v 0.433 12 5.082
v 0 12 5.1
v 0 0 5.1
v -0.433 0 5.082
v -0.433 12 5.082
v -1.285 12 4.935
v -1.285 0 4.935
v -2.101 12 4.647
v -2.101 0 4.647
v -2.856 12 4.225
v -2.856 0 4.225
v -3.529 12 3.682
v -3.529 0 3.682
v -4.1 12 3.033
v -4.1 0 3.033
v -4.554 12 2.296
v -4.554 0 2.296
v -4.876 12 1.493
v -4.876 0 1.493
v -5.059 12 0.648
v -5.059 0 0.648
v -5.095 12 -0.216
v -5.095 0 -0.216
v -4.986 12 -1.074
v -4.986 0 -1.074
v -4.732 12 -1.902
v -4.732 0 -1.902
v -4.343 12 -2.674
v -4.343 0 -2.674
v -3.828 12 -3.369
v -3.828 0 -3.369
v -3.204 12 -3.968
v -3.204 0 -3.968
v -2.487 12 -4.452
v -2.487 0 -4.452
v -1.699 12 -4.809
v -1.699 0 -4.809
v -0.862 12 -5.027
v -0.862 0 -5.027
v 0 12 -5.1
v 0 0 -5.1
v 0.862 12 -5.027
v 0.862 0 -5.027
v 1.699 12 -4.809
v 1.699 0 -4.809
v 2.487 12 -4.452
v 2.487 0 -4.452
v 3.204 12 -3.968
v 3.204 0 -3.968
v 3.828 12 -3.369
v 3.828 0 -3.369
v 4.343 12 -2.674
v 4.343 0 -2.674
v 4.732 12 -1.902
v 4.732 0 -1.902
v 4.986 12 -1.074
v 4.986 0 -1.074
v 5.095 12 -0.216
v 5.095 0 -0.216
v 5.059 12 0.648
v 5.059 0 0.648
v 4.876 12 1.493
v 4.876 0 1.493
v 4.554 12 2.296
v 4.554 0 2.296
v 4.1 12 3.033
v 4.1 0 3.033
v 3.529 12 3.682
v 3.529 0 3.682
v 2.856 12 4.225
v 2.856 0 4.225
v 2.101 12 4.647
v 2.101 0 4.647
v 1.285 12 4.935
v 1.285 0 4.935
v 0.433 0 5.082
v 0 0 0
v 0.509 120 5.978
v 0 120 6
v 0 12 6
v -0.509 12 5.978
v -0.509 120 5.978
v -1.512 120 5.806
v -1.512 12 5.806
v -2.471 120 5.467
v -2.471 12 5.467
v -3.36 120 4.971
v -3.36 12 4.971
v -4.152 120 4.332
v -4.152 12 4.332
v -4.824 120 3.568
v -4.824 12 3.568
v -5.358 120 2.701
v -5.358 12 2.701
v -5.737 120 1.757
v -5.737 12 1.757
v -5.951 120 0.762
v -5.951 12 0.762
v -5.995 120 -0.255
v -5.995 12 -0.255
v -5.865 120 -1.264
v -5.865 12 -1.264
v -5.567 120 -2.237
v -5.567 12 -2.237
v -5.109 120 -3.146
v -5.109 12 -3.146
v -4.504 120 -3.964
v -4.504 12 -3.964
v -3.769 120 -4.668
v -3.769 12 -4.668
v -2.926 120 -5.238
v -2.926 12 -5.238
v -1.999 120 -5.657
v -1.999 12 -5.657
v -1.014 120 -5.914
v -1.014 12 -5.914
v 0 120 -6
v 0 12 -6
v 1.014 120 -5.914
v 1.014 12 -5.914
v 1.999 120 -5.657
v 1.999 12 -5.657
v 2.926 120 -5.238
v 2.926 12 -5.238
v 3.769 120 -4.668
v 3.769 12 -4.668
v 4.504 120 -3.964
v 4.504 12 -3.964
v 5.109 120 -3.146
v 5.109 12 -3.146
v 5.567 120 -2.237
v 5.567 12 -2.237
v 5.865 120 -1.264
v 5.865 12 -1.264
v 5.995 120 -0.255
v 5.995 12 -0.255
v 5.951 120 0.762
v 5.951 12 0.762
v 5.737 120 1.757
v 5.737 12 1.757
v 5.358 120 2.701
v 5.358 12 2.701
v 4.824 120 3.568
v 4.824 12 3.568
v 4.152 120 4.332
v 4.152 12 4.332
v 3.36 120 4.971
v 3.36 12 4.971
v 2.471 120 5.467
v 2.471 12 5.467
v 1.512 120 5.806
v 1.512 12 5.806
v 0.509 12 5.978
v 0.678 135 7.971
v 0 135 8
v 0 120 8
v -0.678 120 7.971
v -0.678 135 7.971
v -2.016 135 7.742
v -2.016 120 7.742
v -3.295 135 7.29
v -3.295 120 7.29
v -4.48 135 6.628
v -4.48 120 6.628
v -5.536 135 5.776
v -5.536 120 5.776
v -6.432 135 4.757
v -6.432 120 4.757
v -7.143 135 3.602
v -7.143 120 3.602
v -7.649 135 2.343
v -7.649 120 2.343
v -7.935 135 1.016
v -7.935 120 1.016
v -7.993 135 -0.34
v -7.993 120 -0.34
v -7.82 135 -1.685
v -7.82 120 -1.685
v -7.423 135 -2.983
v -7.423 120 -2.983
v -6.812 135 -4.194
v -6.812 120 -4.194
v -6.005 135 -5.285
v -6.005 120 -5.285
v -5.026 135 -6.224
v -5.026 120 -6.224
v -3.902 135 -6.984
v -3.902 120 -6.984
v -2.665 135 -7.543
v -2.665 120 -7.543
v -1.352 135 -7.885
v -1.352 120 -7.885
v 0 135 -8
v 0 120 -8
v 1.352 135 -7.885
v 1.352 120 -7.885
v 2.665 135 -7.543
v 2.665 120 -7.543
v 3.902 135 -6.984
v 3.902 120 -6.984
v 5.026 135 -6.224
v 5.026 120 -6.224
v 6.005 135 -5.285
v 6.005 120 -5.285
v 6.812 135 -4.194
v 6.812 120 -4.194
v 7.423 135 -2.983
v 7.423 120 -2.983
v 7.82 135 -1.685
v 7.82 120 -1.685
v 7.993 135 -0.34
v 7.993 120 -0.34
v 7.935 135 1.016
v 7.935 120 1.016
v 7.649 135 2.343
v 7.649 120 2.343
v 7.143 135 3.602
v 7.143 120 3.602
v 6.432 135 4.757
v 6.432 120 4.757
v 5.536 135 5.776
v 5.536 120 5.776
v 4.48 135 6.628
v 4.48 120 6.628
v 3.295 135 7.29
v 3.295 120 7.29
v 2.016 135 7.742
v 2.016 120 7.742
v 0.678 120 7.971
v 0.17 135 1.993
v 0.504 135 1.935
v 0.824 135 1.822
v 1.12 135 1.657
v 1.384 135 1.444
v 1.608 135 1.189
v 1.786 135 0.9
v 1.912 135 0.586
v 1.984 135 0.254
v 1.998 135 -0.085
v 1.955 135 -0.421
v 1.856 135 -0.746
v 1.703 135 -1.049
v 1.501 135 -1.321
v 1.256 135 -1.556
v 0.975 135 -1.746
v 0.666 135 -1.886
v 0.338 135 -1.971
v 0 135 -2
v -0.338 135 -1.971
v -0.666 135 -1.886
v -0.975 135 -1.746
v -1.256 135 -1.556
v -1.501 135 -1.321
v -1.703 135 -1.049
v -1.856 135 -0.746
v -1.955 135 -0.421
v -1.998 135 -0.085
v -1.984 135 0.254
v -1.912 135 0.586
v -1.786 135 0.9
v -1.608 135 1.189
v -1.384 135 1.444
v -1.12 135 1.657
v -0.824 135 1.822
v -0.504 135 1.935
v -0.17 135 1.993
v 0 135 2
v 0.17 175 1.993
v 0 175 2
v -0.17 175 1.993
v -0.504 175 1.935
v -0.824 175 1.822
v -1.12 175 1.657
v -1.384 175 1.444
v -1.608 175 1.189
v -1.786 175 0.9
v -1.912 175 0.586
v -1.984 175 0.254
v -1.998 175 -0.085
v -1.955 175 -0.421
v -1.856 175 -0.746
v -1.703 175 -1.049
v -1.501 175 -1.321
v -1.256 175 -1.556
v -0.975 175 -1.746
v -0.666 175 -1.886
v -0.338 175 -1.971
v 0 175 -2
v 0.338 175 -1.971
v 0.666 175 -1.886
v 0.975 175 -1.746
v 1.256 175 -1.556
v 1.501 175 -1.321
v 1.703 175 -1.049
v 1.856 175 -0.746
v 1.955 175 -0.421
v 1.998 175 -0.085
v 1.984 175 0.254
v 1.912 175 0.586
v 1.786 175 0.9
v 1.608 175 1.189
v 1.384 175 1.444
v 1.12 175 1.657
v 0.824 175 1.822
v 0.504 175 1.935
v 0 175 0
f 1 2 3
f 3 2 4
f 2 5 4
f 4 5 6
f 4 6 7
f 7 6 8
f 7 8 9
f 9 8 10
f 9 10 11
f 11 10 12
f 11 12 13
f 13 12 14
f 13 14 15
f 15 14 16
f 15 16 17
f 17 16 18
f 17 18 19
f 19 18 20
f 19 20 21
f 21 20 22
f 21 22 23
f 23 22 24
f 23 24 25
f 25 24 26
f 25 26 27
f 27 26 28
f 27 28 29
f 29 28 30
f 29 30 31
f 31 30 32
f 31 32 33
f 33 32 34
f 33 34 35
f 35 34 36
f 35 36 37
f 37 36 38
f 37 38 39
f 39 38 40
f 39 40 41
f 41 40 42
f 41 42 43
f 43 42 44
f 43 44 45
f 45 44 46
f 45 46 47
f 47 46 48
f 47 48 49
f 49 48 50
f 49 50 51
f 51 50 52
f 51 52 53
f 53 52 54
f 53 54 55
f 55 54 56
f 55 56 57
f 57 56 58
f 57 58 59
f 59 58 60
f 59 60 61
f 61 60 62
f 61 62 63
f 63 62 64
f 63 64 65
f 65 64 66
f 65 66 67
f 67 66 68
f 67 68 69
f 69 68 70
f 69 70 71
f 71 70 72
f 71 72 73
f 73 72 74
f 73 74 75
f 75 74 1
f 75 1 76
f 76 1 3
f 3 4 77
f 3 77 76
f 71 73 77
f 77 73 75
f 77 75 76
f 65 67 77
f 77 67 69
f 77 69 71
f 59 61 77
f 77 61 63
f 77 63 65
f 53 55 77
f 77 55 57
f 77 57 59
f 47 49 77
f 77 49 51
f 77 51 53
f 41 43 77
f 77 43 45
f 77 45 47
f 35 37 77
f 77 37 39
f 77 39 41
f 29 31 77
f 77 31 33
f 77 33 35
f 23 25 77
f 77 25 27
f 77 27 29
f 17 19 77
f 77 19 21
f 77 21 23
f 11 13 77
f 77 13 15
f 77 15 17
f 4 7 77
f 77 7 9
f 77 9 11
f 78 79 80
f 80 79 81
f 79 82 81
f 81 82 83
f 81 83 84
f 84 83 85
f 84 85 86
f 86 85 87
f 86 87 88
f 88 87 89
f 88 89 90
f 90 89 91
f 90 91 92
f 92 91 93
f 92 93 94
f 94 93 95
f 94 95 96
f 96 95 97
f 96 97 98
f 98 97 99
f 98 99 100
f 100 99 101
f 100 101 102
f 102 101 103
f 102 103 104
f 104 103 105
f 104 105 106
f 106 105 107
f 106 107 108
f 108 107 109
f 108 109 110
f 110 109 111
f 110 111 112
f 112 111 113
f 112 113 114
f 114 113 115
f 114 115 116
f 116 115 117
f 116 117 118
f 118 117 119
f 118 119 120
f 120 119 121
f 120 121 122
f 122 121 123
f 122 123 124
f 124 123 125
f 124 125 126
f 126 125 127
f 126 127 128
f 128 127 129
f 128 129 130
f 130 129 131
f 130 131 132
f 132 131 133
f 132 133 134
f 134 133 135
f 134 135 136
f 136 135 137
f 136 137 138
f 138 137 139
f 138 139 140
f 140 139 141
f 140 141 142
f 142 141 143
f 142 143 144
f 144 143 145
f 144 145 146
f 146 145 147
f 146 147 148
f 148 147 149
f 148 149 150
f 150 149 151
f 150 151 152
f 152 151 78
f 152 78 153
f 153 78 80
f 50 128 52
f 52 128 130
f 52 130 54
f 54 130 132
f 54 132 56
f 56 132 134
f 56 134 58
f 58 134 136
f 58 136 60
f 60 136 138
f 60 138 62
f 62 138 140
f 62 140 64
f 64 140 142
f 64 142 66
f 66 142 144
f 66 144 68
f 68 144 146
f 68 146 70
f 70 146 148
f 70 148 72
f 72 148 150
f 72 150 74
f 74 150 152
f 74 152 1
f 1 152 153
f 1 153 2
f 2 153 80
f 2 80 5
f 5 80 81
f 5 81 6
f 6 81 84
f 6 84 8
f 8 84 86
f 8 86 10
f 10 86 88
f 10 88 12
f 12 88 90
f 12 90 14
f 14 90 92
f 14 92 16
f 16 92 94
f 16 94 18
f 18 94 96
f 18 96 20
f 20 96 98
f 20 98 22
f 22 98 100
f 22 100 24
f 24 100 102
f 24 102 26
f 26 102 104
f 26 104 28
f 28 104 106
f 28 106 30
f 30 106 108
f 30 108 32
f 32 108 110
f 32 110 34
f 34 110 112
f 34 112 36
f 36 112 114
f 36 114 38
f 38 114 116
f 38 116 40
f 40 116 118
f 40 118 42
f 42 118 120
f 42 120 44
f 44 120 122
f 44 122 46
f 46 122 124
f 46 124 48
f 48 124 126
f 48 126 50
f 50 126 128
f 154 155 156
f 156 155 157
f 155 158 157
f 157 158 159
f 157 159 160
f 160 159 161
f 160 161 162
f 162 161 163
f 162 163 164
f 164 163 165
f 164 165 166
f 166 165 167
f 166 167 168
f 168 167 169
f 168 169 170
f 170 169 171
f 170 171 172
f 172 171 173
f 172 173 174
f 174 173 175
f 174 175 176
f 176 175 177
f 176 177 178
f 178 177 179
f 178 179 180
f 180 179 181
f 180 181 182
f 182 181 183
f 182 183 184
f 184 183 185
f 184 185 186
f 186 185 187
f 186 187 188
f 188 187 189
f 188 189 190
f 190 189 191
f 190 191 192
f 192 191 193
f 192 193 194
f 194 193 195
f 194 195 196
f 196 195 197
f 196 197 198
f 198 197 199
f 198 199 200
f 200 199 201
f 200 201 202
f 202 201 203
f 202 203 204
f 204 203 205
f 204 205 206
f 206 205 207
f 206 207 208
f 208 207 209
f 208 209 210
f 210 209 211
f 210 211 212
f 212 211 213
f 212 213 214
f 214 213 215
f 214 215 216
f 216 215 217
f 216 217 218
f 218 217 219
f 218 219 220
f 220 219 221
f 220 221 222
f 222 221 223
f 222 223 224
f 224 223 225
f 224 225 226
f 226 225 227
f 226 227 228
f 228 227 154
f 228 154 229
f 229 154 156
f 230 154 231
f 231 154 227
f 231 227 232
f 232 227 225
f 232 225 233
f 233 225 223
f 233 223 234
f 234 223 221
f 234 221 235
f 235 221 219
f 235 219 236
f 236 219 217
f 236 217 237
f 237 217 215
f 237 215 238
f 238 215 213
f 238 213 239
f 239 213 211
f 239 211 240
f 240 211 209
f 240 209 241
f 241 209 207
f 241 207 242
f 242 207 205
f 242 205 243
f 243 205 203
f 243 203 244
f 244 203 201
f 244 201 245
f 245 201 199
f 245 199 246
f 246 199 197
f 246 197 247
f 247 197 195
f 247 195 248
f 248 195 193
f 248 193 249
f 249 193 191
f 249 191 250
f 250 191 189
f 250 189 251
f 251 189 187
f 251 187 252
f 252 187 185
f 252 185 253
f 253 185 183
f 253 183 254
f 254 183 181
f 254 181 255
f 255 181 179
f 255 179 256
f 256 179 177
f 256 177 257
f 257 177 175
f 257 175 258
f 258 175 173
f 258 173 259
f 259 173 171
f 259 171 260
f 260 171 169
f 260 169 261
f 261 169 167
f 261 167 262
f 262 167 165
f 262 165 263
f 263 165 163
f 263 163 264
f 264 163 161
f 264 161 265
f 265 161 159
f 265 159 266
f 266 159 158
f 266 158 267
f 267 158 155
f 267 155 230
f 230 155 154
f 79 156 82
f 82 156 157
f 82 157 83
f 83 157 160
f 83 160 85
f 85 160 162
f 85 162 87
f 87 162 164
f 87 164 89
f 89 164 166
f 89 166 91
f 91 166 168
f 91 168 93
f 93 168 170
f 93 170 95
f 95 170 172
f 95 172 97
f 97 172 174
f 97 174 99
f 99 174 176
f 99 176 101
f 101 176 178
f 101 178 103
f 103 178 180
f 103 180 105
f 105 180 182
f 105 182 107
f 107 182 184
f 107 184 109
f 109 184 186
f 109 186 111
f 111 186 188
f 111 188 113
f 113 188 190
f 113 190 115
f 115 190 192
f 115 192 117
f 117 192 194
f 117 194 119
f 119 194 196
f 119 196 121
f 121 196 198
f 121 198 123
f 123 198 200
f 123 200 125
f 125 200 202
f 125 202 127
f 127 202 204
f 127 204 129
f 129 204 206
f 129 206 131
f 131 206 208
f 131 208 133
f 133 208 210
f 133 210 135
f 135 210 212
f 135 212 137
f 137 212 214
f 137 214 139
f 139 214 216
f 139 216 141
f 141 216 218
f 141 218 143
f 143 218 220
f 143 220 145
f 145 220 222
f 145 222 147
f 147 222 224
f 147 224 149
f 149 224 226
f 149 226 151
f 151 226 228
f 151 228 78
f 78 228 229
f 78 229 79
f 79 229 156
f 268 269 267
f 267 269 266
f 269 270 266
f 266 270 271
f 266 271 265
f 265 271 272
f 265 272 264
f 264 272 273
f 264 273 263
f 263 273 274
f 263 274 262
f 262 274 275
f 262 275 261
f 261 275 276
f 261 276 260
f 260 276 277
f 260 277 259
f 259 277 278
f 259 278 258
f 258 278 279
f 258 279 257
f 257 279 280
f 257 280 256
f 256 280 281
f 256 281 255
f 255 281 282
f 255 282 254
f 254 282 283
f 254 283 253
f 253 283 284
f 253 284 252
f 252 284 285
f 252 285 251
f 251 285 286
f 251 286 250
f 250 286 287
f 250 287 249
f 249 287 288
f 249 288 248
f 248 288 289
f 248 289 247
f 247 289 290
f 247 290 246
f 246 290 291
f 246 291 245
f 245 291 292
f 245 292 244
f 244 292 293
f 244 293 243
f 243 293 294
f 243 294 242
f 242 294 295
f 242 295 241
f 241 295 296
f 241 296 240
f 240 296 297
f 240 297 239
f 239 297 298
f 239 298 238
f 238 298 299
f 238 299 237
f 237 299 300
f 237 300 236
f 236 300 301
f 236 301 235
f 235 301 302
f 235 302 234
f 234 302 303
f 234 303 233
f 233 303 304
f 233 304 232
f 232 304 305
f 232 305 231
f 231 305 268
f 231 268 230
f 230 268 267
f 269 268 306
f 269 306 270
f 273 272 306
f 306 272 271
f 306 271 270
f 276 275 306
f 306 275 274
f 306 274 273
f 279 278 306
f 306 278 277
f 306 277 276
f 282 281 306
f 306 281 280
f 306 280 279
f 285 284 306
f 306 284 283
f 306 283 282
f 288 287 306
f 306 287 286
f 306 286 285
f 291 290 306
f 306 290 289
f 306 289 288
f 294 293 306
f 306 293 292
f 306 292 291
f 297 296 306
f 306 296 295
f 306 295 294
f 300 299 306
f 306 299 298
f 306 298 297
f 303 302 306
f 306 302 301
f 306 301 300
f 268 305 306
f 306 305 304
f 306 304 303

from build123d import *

# Parameters (mm, degrees)
SKETCH1_R       = 5.1
GLASS_TIP_DEPTH = 12
BODY_START      = 12
SKETCH2_R       = 6
BODY_DEPTH      = 108
CAP_START       = 120
SKETCH3_R       = 8
CAP_DEPTH       = 15
CABLE_START     = 135
SKETCH4_R       = 2
CABLE_DEPTH     = 40


with BuildPart() as part:
    # Sketch1 → Glass_Tip (new body)
    with BuildSketch(Plane(origin=(0, 0, 0), x_dir=(1, 0, 0), z_dir=(0, 1, 0))):
        with Locations(Location((0, 0, 0), (0, 0, 270))):
            Circle(SKETCH1_R)
    extrude(amount=GLASS_TIP_DEPTH)

    # Sketch2 → Body (add)
    with BuildSketch(Plane(origin=(0, 0, 0), x_dir=(1, 0, 0), z_dir=(0, 1, 0)).offset(BODY_START)):
        with Locations(Location((0, 0, 0), (0, 0, 270))):
            Circle(SKETCH2_R)
    extrude(amount=BODY_DEPTH)

    # Sketch3 → Cap (add)
    with BuildSketch(Plane(origin=(0, 0, 0), x_dir=(1, 0, 0), z_dir=(0, 1, 0)).offset(CAP_START)):
        with Locations(Location((0, 0, 0), (0, 0, 270))):
            Circle(SKETCH3_R)
    extrude(amount=CAP_DEPTH)

    # Sketch4 → Cable (add)
    with BuildSketch(Plane(origin=(0, 0, 0), x_dir=(1, 0, 0), z_dir=(0, 1, 0)).offset(CABLE_START)):
        with Locations(Location((0, 0, 0), (0, 0, 270))):
            Circle(SKETCH4_R)
    extrude(amount=CABLE_DEPTH)


solid = part.part
